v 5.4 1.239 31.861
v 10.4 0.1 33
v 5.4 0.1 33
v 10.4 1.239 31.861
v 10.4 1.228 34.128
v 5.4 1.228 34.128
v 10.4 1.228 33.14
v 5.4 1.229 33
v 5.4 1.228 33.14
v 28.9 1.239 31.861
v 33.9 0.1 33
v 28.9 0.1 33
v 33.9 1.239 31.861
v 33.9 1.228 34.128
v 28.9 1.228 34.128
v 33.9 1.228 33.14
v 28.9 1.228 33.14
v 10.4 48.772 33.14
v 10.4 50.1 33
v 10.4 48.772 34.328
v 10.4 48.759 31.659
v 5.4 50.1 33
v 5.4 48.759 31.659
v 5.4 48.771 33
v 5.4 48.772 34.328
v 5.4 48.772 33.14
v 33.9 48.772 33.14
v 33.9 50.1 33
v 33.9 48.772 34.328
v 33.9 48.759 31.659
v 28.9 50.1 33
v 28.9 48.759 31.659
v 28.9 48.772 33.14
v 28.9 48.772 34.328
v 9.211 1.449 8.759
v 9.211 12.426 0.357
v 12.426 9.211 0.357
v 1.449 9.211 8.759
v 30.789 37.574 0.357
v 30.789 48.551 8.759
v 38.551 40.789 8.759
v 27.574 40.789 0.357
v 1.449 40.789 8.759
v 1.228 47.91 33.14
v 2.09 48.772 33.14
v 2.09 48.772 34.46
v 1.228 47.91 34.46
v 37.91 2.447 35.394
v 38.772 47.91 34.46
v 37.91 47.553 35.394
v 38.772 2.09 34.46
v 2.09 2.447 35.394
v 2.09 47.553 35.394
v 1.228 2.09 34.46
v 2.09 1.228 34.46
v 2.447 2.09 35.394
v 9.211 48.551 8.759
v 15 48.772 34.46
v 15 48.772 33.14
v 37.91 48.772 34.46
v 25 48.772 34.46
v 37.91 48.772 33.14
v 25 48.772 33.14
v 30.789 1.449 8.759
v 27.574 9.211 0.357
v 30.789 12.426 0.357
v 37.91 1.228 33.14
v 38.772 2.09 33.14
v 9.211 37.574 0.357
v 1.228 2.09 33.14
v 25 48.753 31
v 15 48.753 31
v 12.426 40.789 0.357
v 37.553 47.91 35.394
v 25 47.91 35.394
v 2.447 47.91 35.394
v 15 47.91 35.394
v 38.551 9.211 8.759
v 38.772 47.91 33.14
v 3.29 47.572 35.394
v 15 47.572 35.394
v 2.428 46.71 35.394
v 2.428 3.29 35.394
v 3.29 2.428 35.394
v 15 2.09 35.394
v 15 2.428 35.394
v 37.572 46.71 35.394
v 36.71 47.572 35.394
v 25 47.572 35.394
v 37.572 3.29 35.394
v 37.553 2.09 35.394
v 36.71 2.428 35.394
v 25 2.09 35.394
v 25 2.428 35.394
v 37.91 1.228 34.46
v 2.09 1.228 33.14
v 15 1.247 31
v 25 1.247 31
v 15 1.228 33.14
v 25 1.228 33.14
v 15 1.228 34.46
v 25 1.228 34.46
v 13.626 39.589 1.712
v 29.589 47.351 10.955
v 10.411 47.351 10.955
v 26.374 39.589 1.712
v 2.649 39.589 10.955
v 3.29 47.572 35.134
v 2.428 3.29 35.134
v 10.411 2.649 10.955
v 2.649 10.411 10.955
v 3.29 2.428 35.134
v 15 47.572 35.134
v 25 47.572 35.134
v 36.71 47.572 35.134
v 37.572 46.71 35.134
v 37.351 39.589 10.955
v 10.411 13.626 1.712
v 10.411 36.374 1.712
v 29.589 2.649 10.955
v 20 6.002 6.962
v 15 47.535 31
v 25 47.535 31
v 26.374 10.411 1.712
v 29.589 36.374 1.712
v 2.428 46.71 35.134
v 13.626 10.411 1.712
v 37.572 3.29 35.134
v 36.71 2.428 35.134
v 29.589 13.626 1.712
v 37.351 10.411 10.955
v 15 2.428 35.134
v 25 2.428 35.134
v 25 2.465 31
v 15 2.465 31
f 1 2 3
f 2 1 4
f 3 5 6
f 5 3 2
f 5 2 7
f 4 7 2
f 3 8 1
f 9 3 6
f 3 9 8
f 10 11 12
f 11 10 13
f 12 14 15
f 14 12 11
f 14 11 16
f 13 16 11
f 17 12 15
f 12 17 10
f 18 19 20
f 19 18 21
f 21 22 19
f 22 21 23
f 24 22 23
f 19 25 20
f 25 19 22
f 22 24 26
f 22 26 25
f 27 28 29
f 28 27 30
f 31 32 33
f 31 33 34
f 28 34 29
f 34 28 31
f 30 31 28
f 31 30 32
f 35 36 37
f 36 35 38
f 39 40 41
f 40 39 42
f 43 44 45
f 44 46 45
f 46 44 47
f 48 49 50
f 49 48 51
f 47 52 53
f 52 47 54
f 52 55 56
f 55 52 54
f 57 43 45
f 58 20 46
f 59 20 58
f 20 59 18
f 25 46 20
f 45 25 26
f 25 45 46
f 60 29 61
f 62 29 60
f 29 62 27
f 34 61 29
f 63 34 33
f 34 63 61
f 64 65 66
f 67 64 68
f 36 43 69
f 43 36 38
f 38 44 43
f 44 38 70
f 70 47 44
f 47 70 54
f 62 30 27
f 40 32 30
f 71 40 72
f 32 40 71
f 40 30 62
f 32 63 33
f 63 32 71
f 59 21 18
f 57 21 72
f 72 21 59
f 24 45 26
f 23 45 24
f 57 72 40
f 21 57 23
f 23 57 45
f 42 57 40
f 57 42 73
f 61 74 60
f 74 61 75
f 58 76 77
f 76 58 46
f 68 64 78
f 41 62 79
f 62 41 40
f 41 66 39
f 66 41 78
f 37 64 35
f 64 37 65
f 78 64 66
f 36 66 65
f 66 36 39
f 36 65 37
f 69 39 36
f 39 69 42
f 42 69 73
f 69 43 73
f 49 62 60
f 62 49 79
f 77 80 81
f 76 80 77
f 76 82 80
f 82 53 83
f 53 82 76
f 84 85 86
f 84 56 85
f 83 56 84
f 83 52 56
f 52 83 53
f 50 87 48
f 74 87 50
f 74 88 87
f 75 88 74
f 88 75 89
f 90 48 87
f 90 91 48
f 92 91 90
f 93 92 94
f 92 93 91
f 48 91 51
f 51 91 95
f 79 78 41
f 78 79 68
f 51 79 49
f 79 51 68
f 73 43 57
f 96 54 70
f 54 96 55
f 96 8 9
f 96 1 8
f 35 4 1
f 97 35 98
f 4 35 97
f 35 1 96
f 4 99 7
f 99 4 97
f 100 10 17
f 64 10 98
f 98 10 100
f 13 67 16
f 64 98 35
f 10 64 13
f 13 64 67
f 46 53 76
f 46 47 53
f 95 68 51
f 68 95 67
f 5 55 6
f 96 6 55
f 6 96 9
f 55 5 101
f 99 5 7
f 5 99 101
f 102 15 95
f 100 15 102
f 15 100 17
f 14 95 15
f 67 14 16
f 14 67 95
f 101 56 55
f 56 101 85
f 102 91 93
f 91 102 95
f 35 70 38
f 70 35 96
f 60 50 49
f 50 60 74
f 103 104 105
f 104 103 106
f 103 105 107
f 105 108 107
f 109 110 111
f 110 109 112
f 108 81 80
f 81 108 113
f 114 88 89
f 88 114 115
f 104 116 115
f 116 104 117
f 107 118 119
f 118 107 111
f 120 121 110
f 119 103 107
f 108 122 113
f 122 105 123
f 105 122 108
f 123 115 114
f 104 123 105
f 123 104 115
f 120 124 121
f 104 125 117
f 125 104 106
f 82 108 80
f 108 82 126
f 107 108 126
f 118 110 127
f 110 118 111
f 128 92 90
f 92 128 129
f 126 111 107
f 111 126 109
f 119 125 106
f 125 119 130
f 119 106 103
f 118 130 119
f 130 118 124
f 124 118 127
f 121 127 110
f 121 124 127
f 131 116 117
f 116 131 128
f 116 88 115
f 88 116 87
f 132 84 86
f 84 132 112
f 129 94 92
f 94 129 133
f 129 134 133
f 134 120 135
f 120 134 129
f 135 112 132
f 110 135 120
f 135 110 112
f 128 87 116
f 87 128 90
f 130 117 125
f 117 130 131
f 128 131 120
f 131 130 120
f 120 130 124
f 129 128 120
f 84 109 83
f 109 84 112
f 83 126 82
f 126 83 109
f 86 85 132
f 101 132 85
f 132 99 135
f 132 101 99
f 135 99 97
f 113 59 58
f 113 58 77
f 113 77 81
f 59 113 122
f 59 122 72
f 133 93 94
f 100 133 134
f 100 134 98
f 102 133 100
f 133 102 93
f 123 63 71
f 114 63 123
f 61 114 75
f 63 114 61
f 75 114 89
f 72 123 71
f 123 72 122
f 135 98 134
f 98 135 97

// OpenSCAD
w=0.4*3;
c=0.5;

//translate([40,0,0])
//rotate([90,-90,0])
//{
//    difference()
//    {
//        cube([30,40-2*w-c,50-2*w-c]);
//        translate([w,w,w])
//        cube([30,40-4*w-c,50-4*w-c]);
//        translate([w+5,(40-2*w-c)/2-w/2,0])
//        cube([20-w,w,w]);
//        translate([w+5,(40-2*w-c)/2-w/2,50-4*w-c+w])
//        cube([20-w,w,w]);
//    }
//}


w=0.4*3;

difference()
{
    union()
    {
        stack(-w);
        clips();
    }
    translate([0,0,0])
    scale([1,1,1.1])
    stack(-2*w);

    translate([40/2-5,0,31])
    cube([10,50,5]);
    
//    #clip_spring();
//    translate([23+w/2,0,0])
//    #clip_spring();
}

module clip_spring()
{
    translate([5,0,26])
    cube([w/2,50,10]);
    translate([5+5,0,26])
    cube([w/2,50,10]);
}

module stack(w=0)
{
    translate([-w,-w,-w])
    hull()
    {
        d=27;
        width=40+2*w;
        length=50+2*w;
        height=35+2*w;
        
        corner_plane(d,width,length,height);
        
        translate([0,0,height-3/2])
        corner_plane(3,width,length,height);
        //cube([width,length,1]);

    }
}

module corner_plane(d,width,length,height)
{
    translate([0,0,0])
    corner_sphere(d);
    translate([width-d,0,0])
    corner_sphere(d);
    translate([0,length-d,0])
    corner_sphere(d);
    translate([width-d,length-d,0])
    corner_sphere(d);
}

module corner_sphere(d)
{
    s=1.15;
    
    translate([d/2,d/2,d/2])
    rotate([0,0,45/2])
    scale([s,s,s])
    sphere(d=d,$fn=8);
}

module clips()
{
    translate([5-w/2,0,30])
    rotate([0,-90,-90])
    {
        translate([0,0,0])
        clip();
        translate([0,20+7/2,0])
        clip();
        translate([0,0,50-w*5/2])
        clip();
        translate([0,20+7/2,50-w*5/2])
        clip();
    }
}

module clip()
{
    //#cube([3,7,w]);
    translate([5*w/2,1,w*4/3])
    rotate([-90,0,0])
    cylinder(d=3,h=5,$fn=4);
}
